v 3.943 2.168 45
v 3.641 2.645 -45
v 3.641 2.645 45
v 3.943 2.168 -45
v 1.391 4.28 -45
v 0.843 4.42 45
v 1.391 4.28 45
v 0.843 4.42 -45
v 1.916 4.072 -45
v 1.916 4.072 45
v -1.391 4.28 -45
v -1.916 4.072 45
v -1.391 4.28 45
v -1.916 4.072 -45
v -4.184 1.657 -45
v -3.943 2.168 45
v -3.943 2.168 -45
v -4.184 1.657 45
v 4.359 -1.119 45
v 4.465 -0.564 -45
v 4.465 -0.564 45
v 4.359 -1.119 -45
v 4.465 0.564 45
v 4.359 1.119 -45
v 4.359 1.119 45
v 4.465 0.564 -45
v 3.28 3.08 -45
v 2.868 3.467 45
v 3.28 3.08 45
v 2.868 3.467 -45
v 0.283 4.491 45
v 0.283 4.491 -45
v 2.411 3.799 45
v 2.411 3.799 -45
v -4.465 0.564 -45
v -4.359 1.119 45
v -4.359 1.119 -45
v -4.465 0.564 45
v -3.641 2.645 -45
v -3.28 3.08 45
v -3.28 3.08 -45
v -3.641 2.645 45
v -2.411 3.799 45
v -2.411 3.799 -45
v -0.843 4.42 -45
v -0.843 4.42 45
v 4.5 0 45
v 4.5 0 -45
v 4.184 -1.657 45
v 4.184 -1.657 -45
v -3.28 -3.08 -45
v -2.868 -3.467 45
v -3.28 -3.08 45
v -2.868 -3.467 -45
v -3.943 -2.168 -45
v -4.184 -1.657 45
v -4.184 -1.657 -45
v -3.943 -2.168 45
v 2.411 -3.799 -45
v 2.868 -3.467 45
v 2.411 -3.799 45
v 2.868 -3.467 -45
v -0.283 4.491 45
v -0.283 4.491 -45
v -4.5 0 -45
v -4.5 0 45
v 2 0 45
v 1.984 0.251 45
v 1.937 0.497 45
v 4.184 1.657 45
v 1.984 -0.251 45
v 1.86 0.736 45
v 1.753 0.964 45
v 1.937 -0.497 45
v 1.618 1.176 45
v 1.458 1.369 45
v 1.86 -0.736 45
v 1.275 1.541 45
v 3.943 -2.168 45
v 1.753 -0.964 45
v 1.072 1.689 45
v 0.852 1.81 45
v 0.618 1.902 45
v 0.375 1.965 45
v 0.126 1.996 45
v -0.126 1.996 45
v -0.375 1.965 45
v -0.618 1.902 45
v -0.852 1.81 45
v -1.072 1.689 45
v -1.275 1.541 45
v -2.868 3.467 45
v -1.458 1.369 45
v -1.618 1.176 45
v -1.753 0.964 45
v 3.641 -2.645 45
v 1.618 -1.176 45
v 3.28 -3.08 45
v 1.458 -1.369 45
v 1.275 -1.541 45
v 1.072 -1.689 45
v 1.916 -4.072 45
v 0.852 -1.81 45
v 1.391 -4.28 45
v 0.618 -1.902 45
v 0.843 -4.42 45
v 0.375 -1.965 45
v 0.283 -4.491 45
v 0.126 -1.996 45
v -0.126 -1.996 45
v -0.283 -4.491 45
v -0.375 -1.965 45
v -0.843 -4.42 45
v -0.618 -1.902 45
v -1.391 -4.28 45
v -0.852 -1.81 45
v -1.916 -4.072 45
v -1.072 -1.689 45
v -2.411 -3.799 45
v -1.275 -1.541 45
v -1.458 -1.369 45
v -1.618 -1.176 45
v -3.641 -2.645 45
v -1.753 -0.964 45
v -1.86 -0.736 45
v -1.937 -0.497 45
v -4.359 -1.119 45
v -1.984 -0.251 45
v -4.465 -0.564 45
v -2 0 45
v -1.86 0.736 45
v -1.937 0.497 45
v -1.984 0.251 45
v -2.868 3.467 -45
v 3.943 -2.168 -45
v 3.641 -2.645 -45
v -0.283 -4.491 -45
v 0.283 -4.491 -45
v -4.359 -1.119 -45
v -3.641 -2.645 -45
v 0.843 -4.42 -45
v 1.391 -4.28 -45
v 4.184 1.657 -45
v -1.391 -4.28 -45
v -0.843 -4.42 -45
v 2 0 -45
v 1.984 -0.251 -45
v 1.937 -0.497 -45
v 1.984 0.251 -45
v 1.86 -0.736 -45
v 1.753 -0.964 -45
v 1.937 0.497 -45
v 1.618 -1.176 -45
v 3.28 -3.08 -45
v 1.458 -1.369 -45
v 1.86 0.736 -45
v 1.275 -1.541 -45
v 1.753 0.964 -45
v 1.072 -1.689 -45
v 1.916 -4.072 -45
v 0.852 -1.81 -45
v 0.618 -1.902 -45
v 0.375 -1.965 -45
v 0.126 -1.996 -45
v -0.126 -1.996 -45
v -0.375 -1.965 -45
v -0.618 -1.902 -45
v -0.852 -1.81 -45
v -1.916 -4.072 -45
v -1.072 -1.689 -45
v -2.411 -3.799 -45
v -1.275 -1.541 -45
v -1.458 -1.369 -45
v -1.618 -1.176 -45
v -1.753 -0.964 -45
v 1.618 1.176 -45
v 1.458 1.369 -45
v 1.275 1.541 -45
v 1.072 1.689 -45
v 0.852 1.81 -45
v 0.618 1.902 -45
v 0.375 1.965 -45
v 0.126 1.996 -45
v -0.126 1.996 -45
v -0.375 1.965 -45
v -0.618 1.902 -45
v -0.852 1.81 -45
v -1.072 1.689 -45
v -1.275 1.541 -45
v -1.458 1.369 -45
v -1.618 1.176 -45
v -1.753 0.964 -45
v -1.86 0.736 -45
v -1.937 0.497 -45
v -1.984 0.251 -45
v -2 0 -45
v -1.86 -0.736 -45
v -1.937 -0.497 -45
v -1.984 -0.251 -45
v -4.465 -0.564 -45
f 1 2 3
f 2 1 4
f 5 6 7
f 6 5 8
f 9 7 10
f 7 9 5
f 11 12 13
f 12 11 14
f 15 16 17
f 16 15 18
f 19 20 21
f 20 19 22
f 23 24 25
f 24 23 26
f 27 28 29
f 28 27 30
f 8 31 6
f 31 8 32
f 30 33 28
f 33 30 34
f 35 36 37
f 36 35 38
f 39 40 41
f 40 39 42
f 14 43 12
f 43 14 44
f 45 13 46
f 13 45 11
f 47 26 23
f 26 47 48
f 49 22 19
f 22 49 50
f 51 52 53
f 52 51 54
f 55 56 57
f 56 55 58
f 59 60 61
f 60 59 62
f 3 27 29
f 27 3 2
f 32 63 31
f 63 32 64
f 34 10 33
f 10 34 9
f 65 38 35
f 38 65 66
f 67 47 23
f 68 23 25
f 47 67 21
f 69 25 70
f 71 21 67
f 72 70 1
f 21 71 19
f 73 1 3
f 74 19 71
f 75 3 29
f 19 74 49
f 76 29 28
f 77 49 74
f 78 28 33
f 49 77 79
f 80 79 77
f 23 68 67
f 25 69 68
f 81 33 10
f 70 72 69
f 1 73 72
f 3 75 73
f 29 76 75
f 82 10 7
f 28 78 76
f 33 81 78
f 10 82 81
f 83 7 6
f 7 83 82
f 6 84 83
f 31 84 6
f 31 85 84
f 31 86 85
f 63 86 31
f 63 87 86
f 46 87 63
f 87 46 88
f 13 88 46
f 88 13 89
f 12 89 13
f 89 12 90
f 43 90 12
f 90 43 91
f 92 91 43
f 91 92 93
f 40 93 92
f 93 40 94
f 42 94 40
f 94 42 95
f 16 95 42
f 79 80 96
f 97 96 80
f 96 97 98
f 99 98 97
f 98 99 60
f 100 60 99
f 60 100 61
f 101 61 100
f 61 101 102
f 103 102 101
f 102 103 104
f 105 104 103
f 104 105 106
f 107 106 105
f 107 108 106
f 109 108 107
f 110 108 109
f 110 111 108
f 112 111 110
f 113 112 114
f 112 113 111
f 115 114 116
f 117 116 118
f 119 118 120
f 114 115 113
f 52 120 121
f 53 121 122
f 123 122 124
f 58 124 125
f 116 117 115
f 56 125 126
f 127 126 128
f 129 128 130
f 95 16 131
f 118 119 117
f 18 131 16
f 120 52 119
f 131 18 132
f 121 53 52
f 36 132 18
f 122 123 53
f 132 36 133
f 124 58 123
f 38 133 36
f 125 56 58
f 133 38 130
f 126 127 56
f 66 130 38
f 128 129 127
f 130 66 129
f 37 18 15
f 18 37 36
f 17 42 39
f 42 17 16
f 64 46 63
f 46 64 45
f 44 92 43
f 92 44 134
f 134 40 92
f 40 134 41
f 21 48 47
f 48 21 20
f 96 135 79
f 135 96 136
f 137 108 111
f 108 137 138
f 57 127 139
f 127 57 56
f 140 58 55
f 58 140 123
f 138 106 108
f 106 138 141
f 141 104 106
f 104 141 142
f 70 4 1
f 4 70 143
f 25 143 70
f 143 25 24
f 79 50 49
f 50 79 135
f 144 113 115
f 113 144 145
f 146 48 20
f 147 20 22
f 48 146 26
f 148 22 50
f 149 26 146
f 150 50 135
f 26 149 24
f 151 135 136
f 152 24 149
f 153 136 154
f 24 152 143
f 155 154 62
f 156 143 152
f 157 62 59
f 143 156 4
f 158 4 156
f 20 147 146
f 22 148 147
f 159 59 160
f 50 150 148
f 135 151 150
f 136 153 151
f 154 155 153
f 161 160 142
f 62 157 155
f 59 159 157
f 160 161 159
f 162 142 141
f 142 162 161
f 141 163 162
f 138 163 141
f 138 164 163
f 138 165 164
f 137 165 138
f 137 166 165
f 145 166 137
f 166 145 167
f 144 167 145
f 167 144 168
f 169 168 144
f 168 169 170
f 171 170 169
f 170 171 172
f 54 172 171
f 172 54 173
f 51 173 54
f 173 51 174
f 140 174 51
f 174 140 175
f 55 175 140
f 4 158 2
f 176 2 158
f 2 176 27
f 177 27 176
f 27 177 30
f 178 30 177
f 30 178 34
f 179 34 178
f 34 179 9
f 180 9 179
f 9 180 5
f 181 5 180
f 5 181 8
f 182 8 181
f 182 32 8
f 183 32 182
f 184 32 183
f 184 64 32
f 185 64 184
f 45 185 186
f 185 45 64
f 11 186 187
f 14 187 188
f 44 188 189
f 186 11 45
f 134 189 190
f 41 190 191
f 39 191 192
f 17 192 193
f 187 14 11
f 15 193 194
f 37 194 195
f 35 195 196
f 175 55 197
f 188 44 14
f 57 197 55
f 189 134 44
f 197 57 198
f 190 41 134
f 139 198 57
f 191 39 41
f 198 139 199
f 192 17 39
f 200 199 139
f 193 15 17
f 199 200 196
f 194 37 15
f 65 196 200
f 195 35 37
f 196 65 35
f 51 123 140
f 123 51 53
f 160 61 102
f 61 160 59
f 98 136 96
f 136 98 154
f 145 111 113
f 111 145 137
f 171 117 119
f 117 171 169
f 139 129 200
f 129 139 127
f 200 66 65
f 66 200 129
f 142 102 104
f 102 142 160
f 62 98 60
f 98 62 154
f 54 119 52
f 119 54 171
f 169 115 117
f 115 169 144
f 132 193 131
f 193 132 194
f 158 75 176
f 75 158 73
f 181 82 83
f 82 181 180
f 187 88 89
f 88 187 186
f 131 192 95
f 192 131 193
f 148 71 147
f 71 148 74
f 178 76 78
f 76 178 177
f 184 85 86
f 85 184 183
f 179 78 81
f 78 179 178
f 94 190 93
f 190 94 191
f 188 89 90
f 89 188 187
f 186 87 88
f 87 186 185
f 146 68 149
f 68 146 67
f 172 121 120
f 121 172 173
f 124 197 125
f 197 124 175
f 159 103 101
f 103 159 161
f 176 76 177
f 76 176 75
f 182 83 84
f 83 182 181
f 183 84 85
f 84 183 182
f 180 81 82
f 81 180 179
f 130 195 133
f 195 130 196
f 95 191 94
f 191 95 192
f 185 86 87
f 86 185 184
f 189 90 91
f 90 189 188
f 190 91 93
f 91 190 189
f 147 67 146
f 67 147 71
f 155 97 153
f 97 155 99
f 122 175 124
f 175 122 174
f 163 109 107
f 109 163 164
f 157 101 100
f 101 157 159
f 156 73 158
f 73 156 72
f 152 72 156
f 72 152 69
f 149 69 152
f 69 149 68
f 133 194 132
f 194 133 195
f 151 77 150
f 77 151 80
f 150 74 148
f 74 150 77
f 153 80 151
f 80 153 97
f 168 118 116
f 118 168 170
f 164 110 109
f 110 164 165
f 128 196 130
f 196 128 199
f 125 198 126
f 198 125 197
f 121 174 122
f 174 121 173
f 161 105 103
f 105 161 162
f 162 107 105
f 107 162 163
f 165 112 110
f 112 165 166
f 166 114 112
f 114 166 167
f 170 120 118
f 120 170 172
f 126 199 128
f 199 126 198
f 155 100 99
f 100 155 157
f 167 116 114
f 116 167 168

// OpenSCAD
$fn = 50;


difference() {
	union() {
		translate(v = [0, 0, -45.0000000000]) {
			cylinder(h = 90, r = 4.5000000000);
		}
	}
	union() {
		translate(v = [0, 0, -100.0000000000]) {
			cylinder(h = 200, r = 2);
		}
	}
}
